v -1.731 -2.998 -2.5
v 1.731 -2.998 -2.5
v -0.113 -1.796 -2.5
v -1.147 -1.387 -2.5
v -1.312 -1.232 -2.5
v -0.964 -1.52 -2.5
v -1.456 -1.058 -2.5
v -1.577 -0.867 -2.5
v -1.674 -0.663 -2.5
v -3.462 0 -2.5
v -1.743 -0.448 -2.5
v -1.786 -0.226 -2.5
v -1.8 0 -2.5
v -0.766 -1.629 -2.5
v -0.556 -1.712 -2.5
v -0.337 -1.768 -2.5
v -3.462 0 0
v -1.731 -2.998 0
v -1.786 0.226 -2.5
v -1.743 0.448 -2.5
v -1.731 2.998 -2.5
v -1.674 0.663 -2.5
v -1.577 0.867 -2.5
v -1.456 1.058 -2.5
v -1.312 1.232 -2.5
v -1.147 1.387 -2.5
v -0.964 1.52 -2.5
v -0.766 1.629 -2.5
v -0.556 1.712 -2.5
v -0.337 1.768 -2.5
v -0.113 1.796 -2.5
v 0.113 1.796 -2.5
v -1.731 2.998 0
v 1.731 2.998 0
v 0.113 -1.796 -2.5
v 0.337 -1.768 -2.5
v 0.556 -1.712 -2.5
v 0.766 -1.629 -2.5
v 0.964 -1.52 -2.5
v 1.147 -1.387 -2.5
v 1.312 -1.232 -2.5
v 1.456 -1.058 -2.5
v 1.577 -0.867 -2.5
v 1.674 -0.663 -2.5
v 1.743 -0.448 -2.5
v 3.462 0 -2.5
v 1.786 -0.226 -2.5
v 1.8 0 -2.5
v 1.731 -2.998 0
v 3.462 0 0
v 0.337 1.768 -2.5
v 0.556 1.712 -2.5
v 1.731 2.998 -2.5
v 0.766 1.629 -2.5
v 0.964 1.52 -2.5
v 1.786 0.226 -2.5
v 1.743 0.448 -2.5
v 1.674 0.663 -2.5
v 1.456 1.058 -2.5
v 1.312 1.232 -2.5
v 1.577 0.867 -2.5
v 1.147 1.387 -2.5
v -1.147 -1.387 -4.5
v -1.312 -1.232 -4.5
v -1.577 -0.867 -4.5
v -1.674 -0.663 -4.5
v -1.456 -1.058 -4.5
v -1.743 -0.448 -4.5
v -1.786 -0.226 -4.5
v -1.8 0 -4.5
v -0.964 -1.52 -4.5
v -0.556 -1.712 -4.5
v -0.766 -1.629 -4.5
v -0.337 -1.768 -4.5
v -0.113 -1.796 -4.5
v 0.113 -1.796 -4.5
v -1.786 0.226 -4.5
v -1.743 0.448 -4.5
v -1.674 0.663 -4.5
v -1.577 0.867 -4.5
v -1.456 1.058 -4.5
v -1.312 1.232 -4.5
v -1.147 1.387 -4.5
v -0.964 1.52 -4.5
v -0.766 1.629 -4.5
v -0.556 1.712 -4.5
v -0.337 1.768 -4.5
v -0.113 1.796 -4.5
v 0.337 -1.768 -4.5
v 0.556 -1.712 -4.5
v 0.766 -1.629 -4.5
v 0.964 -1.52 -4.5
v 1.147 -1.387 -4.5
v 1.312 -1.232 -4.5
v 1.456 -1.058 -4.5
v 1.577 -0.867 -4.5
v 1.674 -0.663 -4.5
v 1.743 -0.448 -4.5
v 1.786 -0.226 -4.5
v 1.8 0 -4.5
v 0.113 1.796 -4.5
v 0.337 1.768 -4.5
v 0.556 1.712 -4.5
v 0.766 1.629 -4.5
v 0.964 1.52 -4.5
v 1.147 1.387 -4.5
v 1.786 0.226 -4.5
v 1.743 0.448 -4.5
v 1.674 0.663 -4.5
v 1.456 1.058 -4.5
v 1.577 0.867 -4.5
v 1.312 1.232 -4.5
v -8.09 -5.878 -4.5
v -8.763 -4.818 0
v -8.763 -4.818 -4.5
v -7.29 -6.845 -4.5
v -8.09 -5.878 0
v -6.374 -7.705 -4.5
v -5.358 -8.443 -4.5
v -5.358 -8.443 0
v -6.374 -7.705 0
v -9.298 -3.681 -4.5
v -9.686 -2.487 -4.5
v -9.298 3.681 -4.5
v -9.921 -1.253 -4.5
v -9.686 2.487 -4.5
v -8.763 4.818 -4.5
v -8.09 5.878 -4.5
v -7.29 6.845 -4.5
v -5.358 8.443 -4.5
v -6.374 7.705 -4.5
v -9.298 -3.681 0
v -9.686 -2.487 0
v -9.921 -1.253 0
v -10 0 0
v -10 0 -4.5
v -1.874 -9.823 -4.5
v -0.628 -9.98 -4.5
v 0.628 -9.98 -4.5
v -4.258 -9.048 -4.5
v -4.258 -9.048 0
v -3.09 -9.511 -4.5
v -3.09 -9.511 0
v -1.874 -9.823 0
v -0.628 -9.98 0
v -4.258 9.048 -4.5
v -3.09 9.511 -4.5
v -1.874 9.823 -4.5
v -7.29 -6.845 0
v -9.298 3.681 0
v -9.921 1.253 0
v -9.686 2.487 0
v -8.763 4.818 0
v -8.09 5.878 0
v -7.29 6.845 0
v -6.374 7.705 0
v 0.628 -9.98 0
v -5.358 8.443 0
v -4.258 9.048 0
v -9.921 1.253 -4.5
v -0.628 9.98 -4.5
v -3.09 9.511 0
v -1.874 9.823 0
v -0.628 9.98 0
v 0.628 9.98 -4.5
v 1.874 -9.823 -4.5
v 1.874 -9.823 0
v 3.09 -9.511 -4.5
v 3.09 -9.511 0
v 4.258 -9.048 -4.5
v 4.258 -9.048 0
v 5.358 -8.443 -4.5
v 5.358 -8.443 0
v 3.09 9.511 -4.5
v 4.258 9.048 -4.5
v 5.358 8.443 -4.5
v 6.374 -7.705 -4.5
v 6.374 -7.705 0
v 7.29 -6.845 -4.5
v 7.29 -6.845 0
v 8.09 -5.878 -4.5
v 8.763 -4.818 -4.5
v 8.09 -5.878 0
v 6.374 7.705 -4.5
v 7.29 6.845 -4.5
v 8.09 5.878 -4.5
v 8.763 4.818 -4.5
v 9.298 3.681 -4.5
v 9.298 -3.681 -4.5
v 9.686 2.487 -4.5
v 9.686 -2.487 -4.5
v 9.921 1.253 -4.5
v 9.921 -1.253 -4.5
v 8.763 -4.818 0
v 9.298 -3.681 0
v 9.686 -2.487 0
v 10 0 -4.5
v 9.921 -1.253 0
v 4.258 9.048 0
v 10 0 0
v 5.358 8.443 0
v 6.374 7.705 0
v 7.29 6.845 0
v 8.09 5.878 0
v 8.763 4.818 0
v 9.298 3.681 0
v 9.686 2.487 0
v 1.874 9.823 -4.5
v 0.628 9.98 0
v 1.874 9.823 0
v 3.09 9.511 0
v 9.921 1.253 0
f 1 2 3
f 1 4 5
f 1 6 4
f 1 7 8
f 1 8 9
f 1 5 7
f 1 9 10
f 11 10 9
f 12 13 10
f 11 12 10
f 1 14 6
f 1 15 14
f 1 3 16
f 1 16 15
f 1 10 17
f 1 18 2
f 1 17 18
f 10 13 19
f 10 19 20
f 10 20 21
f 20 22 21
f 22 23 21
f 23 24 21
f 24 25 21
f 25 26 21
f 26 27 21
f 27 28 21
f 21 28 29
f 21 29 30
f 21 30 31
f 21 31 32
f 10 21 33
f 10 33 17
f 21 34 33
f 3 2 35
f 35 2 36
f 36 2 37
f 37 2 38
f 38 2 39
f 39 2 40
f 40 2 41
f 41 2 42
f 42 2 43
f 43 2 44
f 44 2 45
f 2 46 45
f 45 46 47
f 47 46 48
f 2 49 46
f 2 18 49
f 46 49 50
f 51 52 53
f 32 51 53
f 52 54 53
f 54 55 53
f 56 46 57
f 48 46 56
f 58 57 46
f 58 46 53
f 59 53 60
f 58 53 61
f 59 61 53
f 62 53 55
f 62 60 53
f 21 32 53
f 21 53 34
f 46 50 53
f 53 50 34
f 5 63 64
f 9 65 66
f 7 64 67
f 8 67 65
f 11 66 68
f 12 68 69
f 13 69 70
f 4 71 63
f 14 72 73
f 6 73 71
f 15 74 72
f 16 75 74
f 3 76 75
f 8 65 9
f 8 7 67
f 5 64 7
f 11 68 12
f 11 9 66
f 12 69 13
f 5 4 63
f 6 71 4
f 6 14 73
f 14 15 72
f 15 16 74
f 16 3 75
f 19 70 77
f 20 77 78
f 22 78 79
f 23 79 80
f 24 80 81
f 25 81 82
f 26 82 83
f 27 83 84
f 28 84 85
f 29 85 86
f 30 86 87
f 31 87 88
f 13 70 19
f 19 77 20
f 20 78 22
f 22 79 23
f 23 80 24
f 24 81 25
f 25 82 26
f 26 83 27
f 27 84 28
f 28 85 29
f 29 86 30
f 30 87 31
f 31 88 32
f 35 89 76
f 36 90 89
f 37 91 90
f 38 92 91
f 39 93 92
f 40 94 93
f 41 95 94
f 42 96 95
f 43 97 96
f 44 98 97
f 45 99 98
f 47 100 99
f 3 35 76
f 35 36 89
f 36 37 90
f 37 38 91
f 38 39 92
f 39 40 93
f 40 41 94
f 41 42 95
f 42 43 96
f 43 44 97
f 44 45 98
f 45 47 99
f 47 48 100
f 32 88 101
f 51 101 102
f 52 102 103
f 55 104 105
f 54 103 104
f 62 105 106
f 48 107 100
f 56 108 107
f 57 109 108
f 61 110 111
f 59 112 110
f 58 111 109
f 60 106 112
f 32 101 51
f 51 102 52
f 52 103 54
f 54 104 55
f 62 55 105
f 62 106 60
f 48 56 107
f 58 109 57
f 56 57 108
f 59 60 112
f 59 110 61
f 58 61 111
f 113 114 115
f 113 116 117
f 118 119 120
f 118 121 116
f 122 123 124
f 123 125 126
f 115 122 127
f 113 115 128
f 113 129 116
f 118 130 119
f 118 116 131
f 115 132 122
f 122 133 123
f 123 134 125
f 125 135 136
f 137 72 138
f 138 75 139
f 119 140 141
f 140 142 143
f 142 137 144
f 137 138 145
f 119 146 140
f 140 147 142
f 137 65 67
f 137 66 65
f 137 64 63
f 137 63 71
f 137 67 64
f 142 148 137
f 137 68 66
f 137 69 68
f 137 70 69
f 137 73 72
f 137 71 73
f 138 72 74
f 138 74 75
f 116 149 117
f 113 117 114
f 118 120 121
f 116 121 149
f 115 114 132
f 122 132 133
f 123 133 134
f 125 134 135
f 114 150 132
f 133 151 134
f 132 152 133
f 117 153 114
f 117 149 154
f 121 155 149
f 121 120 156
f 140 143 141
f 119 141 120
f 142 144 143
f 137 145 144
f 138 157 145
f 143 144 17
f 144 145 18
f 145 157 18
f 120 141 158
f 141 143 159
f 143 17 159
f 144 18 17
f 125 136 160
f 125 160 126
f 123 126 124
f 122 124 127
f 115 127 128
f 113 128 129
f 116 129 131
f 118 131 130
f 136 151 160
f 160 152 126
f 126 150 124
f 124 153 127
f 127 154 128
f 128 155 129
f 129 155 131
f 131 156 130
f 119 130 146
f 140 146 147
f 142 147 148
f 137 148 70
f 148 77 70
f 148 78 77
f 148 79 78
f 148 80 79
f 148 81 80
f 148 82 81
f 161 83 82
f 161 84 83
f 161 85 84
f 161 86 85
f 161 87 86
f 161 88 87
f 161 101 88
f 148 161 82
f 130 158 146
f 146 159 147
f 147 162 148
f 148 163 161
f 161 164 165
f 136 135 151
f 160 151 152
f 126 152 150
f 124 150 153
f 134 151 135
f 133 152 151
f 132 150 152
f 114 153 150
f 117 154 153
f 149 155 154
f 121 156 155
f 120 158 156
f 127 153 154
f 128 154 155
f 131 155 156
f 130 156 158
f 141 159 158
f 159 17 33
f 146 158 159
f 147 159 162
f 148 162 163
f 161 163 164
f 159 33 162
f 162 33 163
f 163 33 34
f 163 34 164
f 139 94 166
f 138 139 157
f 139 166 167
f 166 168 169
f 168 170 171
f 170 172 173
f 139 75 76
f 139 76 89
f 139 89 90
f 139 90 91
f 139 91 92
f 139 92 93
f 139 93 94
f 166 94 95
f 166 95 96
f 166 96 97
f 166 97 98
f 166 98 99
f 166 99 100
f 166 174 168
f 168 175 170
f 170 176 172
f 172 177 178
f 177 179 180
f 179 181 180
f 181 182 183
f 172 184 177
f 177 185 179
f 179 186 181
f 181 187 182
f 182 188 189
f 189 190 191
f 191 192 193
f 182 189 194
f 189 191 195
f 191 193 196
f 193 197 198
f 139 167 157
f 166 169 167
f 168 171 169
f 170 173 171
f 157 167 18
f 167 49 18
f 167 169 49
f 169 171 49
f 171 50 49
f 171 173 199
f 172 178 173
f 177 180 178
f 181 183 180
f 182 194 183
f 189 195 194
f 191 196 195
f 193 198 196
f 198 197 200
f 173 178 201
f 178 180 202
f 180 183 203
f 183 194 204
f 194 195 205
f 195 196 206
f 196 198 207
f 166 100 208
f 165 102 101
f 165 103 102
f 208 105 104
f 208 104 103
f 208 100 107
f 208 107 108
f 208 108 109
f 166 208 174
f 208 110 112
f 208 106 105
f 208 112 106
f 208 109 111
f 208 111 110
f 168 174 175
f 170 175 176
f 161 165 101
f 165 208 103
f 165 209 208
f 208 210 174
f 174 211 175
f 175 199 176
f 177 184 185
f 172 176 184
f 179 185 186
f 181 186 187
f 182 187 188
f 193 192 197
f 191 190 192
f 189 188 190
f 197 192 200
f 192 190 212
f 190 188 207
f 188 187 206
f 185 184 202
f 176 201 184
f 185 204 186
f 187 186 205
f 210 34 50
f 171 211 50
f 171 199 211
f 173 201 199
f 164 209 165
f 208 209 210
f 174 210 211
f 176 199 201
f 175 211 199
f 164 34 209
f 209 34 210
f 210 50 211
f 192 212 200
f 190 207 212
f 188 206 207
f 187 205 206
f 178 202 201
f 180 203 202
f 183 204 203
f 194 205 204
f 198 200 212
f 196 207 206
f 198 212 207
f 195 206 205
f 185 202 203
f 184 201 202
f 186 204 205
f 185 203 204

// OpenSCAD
$fn = 50;


difference() {
	union() {
		translate(v = [0, 0, -4.5000000000]) {
			cylinder(h = 4.5000000000, r = 10.0000000000);
		}
	}
	union() {
		translate(v = [0, 0, 0]) {
			rotate(a = [0, 0, 0]) {
				difference() {
					union() {
						translate(v = [0, 0, -2.5000000000]) {
							linear_extrude(height = 2.5000000000) {
								polygon(points = [[3.4620000000, 0.0000000000], [1.7310000000, 2.9981799479], [-1.7310000000, 2.9981799479], [-3.4620000000, 0.0000000000], [-1.7310000000, -2.9981799479], [1.7310000000, -2.9981799479]]);
							}
						}
					}
					union();
				}
			}
		}
		#translate(v = [0, 0, -100.0000000000]) {
			cylinder(h = 200, r = 1.8000000000);
		}
	}
}
